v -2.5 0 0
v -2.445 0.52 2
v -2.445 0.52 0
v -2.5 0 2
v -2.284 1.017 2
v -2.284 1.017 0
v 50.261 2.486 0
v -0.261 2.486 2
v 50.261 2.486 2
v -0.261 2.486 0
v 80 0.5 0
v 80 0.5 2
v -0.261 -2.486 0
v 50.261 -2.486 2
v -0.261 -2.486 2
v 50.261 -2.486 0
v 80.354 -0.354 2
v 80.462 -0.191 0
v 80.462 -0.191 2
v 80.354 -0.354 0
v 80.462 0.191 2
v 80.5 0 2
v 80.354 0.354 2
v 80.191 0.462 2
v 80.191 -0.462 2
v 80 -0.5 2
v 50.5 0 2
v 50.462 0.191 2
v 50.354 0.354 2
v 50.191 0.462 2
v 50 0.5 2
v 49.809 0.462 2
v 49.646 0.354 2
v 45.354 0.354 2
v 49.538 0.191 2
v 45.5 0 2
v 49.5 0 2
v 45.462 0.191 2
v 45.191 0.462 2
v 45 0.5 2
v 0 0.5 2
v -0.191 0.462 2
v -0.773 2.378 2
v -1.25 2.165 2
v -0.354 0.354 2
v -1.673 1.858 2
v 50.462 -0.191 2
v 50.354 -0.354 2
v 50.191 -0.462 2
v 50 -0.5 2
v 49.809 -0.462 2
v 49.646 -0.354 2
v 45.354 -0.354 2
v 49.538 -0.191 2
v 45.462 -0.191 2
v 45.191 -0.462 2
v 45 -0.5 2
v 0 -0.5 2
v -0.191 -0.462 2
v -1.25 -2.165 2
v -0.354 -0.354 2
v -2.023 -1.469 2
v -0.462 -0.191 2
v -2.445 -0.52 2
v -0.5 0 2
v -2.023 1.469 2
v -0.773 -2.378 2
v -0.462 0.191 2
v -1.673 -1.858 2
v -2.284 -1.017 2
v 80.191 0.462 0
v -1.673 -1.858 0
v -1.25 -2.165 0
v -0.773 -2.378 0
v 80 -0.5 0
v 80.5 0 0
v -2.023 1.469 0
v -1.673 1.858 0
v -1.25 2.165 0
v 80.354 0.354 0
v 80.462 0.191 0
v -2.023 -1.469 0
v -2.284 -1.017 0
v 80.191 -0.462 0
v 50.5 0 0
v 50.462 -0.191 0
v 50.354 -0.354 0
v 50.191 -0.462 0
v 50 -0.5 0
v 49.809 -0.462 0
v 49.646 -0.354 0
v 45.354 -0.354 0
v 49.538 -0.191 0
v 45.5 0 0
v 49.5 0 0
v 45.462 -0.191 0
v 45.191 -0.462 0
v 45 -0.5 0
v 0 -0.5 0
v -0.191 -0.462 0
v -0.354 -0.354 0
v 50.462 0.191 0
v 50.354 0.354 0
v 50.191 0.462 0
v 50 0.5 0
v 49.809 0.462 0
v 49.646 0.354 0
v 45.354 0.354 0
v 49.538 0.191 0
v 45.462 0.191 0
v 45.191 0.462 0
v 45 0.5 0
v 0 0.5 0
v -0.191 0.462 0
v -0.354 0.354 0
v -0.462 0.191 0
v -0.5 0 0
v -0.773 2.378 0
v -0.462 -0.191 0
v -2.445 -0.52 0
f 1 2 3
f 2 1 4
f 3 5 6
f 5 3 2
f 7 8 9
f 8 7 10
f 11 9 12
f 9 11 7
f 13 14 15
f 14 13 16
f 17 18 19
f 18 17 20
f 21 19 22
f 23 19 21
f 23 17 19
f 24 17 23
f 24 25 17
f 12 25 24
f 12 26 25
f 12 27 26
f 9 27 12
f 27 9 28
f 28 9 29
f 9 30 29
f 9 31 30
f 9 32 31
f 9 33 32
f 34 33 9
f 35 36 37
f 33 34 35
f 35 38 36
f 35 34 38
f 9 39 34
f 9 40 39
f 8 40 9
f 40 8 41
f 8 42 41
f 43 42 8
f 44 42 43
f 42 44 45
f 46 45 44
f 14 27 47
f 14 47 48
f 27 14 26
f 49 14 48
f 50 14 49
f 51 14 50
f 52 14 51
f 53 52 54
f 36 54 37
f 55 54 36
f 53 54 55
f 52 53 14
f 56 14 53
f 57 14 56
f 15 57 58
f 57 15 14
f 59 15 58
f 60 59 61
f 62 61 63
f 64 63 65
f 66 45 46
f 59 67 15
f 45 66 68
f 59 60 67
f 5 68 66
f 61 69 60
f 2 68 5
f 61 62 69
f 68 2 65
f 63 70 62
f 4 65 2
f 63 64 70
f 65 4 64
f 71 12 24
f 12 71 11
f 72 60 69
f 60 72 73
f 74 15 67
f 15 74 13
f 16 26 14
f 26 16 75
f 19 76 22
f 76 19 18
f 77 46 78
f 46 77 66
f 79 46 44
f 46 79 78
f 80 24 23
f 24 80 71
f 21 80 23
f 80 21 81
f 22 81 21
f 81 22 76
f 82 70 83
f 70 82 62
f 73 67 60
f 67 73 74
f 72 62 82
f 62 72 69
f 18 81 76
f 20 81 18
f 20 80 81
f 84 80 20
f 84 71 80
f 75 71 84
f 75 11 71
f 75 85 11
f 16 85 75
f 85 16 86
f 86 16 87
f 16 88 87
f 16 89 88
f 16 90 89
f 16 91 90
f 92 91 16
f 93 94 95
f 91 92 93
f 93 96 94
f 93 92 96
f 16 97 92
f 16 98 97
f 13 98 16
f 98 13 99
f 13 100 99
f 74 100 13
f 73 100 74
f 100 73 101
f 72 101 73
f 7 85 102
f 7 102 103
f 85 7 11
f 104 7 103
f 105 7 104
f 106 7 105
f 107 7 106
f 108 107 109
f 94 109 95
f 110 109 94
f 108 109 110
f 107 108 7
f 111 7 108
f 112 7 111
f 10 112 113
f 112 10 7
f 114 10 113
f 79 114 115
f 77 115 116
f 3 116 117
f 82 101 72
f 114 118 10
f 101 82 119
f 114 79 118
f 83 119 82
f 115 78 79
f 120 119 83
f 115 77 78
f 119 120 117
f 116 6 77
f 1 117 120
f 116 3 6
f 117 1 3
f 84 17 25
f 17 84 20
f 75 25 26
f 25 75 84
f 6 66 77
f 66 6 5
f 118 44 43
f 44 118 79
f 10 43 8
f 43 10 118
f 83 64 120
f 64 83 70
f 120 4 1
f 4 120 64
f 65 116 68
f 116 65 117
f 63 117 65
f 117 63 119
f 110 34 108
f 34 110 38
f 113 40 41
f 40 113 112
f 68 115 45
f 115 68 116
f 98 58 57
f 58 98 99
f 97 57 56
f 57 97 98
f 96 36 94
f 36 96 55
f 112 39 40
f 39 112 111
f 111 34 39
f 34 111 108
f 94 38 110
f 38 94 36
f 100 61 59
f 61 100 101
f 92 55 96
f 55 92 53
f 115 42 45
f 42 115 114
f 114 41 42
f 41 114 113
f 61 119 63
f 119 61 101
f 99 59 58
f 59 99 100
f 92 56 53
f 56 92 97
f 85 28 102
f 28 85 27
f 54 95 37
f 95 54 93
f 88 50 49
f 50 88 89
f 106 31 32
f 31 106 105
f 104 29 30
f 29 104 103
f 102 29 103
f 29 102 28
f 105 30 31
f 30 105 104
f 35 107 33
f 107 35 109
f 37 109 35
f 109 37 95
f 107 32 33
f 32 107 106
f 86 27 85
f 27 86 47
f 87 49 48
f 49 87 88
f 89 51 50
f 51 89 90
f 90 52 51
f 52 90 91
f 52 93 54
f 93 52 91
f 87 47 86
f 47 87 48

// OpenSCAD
$fs=.2;
module joiner(h=5,g=0)translate([1.1,1.1,0]){
	cylinder(d=2.2,h=h);
	translate([4.6+g,0,0])cylinder(d=2.2,h=h);
	translate([0,-.5,0])cube([4.6+g,1,h]);
}
module joiner4(h=5){
	cube([7.8,14.3,1]);
	translate([3.4,1.1,1])cube([1,12.1,5]);
	translate([0,0,1])joiner(h,1);
	translate([0,12.1,1])joiner(h,1);
}
module band()translate([0,0,5])difference(){
cube([25,27,10],center=true);
cube([22.5,12.1*2,20],center=true);
}
module leg(){
	difference(){
		hull(){
			cylinder(d=5,h=2);
			translate([50,0,0])cylinder(d=5,h=2);
			translate([80,0,0])cylinder(d=1,h=2);
		}
		hull(){
			cylinder(d=1,h=5,center=true);
			translate([45,0,0])cylinder(d=1,h=5,center=true);
		}
		translate([50,0,0])cylinder(d=1,h=5,center=true);
	}
}


//band();
//for(i=[2:4])translate([10*i,0,0])joiner4();
leg();



/*
module hold(hole){
	translate([0,0,-2])difference(){
		cube([32.4,22.4,2]);
		if(hole)translate([-1,-1,-1])cube([6,11,5]);
	}
	translate([4.9,0,0])translate([.1,.1,0]){
		translate([0,15.7,0]){
			rotate(180)union(){
				cube([3.7,3,7.15]);
				translate([2.6,0,6.05])rotate([90,0,0])difference(){
					cylinder(d=1.9,h=2,center=true);
					translate([-1.1,1.1,0])rotate([70,0,0])cube([2.2,2.2,5]);
				}
			}
			translate([22.5,0,0])rotate(-90)union(){
				cube([3,3.7,7.15]);
				translate([0,2.6,6.05])rotate([0,90,0])difference(){
					cylinder(d=1.9,h=2,center=true);
					translate([-1.1,-1.1,0])rotate([0,110,0])cube([2.2,2.2,5]);
				}
			}
			translate([0,2.5,0]){
				rotate(90)cube([4.2,5,7.15]);
				translate([22.5,0,0])rotate(0)cube([4.9,4.2,7.15]);
			}
			
		}
	}
}
module x4(x){hold(x);scale([1,-1,1])hold(x);scale([-1,1,1])hold(x);scale([-1,-1,1])hold(x);}

x4(1);//translate([0,50,0])x4(1);
*/
